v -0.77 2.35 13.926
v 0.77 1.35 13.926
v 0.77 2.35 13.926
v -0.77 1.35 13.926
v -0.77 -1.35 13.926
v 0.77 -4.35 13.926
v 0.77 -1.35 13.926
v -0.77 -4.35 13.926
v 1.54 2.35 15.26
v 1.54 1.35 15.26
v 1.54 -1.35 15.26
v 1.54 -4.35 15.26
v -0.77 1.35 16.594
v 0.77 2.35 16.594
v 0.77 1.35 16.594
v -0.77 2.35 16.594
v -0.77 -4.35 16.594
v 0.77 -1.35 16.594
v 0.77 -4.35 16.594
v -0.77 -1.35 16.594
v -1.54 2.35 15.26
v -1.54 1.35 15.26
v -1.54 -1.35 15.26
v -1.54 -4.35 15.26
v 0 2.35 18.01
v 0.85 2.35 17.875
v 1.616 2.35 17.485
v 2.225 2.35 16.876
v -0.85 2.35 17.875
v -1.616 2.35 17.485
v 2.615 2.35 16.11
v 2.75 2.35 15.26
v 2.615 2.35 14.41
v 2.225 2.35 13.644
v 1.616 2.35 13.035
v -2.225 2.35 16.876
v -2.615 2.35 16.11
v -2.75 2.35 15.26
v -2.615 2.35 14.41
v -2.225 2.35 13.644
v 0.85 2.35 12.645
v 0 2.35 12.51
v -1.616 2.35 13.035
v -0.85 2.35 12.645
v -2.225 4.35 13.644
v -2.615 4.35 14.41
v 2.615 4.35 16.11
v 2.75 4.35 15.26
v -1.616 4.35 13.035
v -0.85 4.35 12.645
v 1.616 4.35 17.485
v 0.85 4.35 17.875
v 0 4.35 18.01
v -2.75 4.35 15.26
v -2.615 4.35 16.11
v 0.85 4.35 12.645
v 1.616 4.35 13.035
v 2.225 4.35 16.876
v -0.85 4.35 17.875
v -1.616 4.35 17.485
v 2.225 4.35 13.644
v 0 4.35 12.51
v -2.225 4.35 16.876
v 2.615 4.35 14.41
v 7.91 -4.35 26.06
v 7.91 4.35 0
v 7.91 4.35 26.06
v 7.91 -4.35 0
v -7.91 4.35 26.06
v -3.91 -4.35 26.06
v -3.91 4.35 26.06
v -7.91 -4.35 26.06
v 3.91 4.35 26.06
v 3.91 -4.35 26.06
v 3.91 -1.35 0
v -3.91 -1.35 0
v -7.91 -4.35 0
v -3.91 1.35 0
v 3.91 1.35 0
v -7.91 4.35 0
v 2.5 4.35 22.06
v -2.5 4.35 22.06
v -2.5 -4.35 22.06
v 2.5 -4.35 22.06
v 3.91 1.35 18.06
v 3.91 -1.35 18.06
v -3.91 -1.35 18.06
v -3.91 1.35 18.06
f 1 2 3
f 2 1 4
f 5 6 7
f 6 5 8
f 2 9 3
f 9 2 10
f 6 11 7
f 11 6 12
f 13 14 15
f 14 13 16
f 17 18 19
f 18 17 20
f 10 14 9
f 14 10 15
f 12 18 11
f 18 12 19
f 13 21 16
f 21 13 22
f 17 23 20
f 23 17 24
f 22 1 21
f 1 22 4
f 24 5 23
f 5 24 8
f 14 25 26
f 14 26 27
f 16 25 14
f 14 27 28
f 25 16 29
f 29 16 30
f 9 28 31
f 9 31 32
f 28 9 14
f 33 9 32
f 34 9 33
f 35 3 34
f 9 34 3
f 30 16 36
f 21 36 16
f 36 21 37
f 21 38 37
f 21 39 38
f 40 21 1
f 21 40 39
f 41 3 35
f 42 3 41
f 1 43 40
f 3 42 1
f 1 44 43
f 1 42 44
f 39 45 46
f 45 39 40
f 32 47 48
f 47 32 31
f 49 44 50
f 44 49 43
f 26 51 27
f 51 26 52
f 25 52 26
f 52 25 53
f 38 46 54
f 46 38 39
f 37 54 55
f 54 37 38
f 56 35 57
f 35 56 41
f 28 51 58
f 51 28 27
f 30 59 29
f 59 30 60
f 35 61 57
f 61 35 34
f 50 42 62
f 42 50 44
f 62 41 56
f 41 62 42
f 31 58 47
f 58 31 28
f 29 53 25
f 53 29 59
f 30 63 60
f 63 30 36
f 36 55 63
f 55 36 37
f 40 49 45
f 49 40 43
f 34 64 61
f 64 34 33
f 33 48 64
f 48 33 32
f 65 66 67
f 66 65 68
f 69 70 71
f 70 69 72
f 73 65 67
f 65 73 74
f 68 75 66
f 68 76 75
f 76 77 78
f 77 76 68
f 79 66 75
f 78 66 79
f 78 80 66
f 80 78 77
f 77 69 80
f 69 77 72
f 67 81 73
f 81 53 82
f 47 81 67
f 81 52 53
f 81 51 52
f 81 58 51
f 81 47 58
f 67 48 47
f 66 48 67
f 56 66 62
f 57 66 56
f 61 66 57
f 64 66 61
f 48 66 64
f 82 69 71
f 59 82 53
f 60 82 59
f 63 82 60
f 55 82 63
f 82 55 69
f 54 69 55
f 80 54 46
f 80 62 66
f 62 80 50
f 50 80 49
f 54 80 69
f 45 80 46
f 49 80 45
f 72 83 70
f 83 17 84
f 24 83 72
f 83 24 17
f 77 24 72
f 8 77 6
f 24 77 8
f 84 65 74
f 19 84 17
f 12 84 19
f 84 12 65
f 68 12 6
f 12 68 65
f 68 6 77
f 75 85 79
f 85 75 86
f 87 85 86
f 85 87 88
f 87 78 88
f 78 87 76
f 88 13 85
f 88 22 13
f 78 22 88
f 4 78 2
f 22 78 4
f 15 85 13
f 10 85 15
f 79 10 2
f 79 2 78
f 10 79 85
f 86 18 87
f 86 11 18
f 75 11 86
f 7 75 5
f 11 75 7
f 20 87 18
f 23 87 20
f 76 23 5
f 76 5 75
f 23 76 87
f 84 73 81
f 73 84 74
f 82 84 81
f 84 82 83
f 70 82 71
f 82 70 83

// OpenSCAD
w = 7.62 + 0.2;
h = 2.50 + 0.2;
d = 17.86 + 0.2;
lg = 100;

btw = 4; // border thichness width direction
bth = 3; // border thichness height direction


module scube(x, xs, y, z, center=false) {
    if(center){
        linear_extrude(z, scale=[xs/x,1]) square([x,y], center=true);
    } else {
        translate([x/2,y/2,0])
            linear_extrude(z, scale=[xs/x,1]) square([x,y], center=true);
    }   
}

module screw_hole(dl, ds) {
    large = 100;
    cylinder(h=large, d=ds, $fn=6);
    mirror([0,0,1]) cylinder(h=large, d=dl, $fn=20);
}

difference() {
	translate([-btw-w/2,-bth-h/2,0]) cube([w+2*btw, h+2*bth, d+8]);
	translate([-w/2,-h/2,0]) cube([w,h,d]);
    translate([0,0,d+8]) mirror([0,0,1])
        scube(x=w,xs=5, y=lg, z=4, center=true);
    
    #translate([0,h/2+1,d-0.2-2.6]) rotate([90,0,0]) screw_hole(dl=5.5, ds=2.8*1.1);
}	
